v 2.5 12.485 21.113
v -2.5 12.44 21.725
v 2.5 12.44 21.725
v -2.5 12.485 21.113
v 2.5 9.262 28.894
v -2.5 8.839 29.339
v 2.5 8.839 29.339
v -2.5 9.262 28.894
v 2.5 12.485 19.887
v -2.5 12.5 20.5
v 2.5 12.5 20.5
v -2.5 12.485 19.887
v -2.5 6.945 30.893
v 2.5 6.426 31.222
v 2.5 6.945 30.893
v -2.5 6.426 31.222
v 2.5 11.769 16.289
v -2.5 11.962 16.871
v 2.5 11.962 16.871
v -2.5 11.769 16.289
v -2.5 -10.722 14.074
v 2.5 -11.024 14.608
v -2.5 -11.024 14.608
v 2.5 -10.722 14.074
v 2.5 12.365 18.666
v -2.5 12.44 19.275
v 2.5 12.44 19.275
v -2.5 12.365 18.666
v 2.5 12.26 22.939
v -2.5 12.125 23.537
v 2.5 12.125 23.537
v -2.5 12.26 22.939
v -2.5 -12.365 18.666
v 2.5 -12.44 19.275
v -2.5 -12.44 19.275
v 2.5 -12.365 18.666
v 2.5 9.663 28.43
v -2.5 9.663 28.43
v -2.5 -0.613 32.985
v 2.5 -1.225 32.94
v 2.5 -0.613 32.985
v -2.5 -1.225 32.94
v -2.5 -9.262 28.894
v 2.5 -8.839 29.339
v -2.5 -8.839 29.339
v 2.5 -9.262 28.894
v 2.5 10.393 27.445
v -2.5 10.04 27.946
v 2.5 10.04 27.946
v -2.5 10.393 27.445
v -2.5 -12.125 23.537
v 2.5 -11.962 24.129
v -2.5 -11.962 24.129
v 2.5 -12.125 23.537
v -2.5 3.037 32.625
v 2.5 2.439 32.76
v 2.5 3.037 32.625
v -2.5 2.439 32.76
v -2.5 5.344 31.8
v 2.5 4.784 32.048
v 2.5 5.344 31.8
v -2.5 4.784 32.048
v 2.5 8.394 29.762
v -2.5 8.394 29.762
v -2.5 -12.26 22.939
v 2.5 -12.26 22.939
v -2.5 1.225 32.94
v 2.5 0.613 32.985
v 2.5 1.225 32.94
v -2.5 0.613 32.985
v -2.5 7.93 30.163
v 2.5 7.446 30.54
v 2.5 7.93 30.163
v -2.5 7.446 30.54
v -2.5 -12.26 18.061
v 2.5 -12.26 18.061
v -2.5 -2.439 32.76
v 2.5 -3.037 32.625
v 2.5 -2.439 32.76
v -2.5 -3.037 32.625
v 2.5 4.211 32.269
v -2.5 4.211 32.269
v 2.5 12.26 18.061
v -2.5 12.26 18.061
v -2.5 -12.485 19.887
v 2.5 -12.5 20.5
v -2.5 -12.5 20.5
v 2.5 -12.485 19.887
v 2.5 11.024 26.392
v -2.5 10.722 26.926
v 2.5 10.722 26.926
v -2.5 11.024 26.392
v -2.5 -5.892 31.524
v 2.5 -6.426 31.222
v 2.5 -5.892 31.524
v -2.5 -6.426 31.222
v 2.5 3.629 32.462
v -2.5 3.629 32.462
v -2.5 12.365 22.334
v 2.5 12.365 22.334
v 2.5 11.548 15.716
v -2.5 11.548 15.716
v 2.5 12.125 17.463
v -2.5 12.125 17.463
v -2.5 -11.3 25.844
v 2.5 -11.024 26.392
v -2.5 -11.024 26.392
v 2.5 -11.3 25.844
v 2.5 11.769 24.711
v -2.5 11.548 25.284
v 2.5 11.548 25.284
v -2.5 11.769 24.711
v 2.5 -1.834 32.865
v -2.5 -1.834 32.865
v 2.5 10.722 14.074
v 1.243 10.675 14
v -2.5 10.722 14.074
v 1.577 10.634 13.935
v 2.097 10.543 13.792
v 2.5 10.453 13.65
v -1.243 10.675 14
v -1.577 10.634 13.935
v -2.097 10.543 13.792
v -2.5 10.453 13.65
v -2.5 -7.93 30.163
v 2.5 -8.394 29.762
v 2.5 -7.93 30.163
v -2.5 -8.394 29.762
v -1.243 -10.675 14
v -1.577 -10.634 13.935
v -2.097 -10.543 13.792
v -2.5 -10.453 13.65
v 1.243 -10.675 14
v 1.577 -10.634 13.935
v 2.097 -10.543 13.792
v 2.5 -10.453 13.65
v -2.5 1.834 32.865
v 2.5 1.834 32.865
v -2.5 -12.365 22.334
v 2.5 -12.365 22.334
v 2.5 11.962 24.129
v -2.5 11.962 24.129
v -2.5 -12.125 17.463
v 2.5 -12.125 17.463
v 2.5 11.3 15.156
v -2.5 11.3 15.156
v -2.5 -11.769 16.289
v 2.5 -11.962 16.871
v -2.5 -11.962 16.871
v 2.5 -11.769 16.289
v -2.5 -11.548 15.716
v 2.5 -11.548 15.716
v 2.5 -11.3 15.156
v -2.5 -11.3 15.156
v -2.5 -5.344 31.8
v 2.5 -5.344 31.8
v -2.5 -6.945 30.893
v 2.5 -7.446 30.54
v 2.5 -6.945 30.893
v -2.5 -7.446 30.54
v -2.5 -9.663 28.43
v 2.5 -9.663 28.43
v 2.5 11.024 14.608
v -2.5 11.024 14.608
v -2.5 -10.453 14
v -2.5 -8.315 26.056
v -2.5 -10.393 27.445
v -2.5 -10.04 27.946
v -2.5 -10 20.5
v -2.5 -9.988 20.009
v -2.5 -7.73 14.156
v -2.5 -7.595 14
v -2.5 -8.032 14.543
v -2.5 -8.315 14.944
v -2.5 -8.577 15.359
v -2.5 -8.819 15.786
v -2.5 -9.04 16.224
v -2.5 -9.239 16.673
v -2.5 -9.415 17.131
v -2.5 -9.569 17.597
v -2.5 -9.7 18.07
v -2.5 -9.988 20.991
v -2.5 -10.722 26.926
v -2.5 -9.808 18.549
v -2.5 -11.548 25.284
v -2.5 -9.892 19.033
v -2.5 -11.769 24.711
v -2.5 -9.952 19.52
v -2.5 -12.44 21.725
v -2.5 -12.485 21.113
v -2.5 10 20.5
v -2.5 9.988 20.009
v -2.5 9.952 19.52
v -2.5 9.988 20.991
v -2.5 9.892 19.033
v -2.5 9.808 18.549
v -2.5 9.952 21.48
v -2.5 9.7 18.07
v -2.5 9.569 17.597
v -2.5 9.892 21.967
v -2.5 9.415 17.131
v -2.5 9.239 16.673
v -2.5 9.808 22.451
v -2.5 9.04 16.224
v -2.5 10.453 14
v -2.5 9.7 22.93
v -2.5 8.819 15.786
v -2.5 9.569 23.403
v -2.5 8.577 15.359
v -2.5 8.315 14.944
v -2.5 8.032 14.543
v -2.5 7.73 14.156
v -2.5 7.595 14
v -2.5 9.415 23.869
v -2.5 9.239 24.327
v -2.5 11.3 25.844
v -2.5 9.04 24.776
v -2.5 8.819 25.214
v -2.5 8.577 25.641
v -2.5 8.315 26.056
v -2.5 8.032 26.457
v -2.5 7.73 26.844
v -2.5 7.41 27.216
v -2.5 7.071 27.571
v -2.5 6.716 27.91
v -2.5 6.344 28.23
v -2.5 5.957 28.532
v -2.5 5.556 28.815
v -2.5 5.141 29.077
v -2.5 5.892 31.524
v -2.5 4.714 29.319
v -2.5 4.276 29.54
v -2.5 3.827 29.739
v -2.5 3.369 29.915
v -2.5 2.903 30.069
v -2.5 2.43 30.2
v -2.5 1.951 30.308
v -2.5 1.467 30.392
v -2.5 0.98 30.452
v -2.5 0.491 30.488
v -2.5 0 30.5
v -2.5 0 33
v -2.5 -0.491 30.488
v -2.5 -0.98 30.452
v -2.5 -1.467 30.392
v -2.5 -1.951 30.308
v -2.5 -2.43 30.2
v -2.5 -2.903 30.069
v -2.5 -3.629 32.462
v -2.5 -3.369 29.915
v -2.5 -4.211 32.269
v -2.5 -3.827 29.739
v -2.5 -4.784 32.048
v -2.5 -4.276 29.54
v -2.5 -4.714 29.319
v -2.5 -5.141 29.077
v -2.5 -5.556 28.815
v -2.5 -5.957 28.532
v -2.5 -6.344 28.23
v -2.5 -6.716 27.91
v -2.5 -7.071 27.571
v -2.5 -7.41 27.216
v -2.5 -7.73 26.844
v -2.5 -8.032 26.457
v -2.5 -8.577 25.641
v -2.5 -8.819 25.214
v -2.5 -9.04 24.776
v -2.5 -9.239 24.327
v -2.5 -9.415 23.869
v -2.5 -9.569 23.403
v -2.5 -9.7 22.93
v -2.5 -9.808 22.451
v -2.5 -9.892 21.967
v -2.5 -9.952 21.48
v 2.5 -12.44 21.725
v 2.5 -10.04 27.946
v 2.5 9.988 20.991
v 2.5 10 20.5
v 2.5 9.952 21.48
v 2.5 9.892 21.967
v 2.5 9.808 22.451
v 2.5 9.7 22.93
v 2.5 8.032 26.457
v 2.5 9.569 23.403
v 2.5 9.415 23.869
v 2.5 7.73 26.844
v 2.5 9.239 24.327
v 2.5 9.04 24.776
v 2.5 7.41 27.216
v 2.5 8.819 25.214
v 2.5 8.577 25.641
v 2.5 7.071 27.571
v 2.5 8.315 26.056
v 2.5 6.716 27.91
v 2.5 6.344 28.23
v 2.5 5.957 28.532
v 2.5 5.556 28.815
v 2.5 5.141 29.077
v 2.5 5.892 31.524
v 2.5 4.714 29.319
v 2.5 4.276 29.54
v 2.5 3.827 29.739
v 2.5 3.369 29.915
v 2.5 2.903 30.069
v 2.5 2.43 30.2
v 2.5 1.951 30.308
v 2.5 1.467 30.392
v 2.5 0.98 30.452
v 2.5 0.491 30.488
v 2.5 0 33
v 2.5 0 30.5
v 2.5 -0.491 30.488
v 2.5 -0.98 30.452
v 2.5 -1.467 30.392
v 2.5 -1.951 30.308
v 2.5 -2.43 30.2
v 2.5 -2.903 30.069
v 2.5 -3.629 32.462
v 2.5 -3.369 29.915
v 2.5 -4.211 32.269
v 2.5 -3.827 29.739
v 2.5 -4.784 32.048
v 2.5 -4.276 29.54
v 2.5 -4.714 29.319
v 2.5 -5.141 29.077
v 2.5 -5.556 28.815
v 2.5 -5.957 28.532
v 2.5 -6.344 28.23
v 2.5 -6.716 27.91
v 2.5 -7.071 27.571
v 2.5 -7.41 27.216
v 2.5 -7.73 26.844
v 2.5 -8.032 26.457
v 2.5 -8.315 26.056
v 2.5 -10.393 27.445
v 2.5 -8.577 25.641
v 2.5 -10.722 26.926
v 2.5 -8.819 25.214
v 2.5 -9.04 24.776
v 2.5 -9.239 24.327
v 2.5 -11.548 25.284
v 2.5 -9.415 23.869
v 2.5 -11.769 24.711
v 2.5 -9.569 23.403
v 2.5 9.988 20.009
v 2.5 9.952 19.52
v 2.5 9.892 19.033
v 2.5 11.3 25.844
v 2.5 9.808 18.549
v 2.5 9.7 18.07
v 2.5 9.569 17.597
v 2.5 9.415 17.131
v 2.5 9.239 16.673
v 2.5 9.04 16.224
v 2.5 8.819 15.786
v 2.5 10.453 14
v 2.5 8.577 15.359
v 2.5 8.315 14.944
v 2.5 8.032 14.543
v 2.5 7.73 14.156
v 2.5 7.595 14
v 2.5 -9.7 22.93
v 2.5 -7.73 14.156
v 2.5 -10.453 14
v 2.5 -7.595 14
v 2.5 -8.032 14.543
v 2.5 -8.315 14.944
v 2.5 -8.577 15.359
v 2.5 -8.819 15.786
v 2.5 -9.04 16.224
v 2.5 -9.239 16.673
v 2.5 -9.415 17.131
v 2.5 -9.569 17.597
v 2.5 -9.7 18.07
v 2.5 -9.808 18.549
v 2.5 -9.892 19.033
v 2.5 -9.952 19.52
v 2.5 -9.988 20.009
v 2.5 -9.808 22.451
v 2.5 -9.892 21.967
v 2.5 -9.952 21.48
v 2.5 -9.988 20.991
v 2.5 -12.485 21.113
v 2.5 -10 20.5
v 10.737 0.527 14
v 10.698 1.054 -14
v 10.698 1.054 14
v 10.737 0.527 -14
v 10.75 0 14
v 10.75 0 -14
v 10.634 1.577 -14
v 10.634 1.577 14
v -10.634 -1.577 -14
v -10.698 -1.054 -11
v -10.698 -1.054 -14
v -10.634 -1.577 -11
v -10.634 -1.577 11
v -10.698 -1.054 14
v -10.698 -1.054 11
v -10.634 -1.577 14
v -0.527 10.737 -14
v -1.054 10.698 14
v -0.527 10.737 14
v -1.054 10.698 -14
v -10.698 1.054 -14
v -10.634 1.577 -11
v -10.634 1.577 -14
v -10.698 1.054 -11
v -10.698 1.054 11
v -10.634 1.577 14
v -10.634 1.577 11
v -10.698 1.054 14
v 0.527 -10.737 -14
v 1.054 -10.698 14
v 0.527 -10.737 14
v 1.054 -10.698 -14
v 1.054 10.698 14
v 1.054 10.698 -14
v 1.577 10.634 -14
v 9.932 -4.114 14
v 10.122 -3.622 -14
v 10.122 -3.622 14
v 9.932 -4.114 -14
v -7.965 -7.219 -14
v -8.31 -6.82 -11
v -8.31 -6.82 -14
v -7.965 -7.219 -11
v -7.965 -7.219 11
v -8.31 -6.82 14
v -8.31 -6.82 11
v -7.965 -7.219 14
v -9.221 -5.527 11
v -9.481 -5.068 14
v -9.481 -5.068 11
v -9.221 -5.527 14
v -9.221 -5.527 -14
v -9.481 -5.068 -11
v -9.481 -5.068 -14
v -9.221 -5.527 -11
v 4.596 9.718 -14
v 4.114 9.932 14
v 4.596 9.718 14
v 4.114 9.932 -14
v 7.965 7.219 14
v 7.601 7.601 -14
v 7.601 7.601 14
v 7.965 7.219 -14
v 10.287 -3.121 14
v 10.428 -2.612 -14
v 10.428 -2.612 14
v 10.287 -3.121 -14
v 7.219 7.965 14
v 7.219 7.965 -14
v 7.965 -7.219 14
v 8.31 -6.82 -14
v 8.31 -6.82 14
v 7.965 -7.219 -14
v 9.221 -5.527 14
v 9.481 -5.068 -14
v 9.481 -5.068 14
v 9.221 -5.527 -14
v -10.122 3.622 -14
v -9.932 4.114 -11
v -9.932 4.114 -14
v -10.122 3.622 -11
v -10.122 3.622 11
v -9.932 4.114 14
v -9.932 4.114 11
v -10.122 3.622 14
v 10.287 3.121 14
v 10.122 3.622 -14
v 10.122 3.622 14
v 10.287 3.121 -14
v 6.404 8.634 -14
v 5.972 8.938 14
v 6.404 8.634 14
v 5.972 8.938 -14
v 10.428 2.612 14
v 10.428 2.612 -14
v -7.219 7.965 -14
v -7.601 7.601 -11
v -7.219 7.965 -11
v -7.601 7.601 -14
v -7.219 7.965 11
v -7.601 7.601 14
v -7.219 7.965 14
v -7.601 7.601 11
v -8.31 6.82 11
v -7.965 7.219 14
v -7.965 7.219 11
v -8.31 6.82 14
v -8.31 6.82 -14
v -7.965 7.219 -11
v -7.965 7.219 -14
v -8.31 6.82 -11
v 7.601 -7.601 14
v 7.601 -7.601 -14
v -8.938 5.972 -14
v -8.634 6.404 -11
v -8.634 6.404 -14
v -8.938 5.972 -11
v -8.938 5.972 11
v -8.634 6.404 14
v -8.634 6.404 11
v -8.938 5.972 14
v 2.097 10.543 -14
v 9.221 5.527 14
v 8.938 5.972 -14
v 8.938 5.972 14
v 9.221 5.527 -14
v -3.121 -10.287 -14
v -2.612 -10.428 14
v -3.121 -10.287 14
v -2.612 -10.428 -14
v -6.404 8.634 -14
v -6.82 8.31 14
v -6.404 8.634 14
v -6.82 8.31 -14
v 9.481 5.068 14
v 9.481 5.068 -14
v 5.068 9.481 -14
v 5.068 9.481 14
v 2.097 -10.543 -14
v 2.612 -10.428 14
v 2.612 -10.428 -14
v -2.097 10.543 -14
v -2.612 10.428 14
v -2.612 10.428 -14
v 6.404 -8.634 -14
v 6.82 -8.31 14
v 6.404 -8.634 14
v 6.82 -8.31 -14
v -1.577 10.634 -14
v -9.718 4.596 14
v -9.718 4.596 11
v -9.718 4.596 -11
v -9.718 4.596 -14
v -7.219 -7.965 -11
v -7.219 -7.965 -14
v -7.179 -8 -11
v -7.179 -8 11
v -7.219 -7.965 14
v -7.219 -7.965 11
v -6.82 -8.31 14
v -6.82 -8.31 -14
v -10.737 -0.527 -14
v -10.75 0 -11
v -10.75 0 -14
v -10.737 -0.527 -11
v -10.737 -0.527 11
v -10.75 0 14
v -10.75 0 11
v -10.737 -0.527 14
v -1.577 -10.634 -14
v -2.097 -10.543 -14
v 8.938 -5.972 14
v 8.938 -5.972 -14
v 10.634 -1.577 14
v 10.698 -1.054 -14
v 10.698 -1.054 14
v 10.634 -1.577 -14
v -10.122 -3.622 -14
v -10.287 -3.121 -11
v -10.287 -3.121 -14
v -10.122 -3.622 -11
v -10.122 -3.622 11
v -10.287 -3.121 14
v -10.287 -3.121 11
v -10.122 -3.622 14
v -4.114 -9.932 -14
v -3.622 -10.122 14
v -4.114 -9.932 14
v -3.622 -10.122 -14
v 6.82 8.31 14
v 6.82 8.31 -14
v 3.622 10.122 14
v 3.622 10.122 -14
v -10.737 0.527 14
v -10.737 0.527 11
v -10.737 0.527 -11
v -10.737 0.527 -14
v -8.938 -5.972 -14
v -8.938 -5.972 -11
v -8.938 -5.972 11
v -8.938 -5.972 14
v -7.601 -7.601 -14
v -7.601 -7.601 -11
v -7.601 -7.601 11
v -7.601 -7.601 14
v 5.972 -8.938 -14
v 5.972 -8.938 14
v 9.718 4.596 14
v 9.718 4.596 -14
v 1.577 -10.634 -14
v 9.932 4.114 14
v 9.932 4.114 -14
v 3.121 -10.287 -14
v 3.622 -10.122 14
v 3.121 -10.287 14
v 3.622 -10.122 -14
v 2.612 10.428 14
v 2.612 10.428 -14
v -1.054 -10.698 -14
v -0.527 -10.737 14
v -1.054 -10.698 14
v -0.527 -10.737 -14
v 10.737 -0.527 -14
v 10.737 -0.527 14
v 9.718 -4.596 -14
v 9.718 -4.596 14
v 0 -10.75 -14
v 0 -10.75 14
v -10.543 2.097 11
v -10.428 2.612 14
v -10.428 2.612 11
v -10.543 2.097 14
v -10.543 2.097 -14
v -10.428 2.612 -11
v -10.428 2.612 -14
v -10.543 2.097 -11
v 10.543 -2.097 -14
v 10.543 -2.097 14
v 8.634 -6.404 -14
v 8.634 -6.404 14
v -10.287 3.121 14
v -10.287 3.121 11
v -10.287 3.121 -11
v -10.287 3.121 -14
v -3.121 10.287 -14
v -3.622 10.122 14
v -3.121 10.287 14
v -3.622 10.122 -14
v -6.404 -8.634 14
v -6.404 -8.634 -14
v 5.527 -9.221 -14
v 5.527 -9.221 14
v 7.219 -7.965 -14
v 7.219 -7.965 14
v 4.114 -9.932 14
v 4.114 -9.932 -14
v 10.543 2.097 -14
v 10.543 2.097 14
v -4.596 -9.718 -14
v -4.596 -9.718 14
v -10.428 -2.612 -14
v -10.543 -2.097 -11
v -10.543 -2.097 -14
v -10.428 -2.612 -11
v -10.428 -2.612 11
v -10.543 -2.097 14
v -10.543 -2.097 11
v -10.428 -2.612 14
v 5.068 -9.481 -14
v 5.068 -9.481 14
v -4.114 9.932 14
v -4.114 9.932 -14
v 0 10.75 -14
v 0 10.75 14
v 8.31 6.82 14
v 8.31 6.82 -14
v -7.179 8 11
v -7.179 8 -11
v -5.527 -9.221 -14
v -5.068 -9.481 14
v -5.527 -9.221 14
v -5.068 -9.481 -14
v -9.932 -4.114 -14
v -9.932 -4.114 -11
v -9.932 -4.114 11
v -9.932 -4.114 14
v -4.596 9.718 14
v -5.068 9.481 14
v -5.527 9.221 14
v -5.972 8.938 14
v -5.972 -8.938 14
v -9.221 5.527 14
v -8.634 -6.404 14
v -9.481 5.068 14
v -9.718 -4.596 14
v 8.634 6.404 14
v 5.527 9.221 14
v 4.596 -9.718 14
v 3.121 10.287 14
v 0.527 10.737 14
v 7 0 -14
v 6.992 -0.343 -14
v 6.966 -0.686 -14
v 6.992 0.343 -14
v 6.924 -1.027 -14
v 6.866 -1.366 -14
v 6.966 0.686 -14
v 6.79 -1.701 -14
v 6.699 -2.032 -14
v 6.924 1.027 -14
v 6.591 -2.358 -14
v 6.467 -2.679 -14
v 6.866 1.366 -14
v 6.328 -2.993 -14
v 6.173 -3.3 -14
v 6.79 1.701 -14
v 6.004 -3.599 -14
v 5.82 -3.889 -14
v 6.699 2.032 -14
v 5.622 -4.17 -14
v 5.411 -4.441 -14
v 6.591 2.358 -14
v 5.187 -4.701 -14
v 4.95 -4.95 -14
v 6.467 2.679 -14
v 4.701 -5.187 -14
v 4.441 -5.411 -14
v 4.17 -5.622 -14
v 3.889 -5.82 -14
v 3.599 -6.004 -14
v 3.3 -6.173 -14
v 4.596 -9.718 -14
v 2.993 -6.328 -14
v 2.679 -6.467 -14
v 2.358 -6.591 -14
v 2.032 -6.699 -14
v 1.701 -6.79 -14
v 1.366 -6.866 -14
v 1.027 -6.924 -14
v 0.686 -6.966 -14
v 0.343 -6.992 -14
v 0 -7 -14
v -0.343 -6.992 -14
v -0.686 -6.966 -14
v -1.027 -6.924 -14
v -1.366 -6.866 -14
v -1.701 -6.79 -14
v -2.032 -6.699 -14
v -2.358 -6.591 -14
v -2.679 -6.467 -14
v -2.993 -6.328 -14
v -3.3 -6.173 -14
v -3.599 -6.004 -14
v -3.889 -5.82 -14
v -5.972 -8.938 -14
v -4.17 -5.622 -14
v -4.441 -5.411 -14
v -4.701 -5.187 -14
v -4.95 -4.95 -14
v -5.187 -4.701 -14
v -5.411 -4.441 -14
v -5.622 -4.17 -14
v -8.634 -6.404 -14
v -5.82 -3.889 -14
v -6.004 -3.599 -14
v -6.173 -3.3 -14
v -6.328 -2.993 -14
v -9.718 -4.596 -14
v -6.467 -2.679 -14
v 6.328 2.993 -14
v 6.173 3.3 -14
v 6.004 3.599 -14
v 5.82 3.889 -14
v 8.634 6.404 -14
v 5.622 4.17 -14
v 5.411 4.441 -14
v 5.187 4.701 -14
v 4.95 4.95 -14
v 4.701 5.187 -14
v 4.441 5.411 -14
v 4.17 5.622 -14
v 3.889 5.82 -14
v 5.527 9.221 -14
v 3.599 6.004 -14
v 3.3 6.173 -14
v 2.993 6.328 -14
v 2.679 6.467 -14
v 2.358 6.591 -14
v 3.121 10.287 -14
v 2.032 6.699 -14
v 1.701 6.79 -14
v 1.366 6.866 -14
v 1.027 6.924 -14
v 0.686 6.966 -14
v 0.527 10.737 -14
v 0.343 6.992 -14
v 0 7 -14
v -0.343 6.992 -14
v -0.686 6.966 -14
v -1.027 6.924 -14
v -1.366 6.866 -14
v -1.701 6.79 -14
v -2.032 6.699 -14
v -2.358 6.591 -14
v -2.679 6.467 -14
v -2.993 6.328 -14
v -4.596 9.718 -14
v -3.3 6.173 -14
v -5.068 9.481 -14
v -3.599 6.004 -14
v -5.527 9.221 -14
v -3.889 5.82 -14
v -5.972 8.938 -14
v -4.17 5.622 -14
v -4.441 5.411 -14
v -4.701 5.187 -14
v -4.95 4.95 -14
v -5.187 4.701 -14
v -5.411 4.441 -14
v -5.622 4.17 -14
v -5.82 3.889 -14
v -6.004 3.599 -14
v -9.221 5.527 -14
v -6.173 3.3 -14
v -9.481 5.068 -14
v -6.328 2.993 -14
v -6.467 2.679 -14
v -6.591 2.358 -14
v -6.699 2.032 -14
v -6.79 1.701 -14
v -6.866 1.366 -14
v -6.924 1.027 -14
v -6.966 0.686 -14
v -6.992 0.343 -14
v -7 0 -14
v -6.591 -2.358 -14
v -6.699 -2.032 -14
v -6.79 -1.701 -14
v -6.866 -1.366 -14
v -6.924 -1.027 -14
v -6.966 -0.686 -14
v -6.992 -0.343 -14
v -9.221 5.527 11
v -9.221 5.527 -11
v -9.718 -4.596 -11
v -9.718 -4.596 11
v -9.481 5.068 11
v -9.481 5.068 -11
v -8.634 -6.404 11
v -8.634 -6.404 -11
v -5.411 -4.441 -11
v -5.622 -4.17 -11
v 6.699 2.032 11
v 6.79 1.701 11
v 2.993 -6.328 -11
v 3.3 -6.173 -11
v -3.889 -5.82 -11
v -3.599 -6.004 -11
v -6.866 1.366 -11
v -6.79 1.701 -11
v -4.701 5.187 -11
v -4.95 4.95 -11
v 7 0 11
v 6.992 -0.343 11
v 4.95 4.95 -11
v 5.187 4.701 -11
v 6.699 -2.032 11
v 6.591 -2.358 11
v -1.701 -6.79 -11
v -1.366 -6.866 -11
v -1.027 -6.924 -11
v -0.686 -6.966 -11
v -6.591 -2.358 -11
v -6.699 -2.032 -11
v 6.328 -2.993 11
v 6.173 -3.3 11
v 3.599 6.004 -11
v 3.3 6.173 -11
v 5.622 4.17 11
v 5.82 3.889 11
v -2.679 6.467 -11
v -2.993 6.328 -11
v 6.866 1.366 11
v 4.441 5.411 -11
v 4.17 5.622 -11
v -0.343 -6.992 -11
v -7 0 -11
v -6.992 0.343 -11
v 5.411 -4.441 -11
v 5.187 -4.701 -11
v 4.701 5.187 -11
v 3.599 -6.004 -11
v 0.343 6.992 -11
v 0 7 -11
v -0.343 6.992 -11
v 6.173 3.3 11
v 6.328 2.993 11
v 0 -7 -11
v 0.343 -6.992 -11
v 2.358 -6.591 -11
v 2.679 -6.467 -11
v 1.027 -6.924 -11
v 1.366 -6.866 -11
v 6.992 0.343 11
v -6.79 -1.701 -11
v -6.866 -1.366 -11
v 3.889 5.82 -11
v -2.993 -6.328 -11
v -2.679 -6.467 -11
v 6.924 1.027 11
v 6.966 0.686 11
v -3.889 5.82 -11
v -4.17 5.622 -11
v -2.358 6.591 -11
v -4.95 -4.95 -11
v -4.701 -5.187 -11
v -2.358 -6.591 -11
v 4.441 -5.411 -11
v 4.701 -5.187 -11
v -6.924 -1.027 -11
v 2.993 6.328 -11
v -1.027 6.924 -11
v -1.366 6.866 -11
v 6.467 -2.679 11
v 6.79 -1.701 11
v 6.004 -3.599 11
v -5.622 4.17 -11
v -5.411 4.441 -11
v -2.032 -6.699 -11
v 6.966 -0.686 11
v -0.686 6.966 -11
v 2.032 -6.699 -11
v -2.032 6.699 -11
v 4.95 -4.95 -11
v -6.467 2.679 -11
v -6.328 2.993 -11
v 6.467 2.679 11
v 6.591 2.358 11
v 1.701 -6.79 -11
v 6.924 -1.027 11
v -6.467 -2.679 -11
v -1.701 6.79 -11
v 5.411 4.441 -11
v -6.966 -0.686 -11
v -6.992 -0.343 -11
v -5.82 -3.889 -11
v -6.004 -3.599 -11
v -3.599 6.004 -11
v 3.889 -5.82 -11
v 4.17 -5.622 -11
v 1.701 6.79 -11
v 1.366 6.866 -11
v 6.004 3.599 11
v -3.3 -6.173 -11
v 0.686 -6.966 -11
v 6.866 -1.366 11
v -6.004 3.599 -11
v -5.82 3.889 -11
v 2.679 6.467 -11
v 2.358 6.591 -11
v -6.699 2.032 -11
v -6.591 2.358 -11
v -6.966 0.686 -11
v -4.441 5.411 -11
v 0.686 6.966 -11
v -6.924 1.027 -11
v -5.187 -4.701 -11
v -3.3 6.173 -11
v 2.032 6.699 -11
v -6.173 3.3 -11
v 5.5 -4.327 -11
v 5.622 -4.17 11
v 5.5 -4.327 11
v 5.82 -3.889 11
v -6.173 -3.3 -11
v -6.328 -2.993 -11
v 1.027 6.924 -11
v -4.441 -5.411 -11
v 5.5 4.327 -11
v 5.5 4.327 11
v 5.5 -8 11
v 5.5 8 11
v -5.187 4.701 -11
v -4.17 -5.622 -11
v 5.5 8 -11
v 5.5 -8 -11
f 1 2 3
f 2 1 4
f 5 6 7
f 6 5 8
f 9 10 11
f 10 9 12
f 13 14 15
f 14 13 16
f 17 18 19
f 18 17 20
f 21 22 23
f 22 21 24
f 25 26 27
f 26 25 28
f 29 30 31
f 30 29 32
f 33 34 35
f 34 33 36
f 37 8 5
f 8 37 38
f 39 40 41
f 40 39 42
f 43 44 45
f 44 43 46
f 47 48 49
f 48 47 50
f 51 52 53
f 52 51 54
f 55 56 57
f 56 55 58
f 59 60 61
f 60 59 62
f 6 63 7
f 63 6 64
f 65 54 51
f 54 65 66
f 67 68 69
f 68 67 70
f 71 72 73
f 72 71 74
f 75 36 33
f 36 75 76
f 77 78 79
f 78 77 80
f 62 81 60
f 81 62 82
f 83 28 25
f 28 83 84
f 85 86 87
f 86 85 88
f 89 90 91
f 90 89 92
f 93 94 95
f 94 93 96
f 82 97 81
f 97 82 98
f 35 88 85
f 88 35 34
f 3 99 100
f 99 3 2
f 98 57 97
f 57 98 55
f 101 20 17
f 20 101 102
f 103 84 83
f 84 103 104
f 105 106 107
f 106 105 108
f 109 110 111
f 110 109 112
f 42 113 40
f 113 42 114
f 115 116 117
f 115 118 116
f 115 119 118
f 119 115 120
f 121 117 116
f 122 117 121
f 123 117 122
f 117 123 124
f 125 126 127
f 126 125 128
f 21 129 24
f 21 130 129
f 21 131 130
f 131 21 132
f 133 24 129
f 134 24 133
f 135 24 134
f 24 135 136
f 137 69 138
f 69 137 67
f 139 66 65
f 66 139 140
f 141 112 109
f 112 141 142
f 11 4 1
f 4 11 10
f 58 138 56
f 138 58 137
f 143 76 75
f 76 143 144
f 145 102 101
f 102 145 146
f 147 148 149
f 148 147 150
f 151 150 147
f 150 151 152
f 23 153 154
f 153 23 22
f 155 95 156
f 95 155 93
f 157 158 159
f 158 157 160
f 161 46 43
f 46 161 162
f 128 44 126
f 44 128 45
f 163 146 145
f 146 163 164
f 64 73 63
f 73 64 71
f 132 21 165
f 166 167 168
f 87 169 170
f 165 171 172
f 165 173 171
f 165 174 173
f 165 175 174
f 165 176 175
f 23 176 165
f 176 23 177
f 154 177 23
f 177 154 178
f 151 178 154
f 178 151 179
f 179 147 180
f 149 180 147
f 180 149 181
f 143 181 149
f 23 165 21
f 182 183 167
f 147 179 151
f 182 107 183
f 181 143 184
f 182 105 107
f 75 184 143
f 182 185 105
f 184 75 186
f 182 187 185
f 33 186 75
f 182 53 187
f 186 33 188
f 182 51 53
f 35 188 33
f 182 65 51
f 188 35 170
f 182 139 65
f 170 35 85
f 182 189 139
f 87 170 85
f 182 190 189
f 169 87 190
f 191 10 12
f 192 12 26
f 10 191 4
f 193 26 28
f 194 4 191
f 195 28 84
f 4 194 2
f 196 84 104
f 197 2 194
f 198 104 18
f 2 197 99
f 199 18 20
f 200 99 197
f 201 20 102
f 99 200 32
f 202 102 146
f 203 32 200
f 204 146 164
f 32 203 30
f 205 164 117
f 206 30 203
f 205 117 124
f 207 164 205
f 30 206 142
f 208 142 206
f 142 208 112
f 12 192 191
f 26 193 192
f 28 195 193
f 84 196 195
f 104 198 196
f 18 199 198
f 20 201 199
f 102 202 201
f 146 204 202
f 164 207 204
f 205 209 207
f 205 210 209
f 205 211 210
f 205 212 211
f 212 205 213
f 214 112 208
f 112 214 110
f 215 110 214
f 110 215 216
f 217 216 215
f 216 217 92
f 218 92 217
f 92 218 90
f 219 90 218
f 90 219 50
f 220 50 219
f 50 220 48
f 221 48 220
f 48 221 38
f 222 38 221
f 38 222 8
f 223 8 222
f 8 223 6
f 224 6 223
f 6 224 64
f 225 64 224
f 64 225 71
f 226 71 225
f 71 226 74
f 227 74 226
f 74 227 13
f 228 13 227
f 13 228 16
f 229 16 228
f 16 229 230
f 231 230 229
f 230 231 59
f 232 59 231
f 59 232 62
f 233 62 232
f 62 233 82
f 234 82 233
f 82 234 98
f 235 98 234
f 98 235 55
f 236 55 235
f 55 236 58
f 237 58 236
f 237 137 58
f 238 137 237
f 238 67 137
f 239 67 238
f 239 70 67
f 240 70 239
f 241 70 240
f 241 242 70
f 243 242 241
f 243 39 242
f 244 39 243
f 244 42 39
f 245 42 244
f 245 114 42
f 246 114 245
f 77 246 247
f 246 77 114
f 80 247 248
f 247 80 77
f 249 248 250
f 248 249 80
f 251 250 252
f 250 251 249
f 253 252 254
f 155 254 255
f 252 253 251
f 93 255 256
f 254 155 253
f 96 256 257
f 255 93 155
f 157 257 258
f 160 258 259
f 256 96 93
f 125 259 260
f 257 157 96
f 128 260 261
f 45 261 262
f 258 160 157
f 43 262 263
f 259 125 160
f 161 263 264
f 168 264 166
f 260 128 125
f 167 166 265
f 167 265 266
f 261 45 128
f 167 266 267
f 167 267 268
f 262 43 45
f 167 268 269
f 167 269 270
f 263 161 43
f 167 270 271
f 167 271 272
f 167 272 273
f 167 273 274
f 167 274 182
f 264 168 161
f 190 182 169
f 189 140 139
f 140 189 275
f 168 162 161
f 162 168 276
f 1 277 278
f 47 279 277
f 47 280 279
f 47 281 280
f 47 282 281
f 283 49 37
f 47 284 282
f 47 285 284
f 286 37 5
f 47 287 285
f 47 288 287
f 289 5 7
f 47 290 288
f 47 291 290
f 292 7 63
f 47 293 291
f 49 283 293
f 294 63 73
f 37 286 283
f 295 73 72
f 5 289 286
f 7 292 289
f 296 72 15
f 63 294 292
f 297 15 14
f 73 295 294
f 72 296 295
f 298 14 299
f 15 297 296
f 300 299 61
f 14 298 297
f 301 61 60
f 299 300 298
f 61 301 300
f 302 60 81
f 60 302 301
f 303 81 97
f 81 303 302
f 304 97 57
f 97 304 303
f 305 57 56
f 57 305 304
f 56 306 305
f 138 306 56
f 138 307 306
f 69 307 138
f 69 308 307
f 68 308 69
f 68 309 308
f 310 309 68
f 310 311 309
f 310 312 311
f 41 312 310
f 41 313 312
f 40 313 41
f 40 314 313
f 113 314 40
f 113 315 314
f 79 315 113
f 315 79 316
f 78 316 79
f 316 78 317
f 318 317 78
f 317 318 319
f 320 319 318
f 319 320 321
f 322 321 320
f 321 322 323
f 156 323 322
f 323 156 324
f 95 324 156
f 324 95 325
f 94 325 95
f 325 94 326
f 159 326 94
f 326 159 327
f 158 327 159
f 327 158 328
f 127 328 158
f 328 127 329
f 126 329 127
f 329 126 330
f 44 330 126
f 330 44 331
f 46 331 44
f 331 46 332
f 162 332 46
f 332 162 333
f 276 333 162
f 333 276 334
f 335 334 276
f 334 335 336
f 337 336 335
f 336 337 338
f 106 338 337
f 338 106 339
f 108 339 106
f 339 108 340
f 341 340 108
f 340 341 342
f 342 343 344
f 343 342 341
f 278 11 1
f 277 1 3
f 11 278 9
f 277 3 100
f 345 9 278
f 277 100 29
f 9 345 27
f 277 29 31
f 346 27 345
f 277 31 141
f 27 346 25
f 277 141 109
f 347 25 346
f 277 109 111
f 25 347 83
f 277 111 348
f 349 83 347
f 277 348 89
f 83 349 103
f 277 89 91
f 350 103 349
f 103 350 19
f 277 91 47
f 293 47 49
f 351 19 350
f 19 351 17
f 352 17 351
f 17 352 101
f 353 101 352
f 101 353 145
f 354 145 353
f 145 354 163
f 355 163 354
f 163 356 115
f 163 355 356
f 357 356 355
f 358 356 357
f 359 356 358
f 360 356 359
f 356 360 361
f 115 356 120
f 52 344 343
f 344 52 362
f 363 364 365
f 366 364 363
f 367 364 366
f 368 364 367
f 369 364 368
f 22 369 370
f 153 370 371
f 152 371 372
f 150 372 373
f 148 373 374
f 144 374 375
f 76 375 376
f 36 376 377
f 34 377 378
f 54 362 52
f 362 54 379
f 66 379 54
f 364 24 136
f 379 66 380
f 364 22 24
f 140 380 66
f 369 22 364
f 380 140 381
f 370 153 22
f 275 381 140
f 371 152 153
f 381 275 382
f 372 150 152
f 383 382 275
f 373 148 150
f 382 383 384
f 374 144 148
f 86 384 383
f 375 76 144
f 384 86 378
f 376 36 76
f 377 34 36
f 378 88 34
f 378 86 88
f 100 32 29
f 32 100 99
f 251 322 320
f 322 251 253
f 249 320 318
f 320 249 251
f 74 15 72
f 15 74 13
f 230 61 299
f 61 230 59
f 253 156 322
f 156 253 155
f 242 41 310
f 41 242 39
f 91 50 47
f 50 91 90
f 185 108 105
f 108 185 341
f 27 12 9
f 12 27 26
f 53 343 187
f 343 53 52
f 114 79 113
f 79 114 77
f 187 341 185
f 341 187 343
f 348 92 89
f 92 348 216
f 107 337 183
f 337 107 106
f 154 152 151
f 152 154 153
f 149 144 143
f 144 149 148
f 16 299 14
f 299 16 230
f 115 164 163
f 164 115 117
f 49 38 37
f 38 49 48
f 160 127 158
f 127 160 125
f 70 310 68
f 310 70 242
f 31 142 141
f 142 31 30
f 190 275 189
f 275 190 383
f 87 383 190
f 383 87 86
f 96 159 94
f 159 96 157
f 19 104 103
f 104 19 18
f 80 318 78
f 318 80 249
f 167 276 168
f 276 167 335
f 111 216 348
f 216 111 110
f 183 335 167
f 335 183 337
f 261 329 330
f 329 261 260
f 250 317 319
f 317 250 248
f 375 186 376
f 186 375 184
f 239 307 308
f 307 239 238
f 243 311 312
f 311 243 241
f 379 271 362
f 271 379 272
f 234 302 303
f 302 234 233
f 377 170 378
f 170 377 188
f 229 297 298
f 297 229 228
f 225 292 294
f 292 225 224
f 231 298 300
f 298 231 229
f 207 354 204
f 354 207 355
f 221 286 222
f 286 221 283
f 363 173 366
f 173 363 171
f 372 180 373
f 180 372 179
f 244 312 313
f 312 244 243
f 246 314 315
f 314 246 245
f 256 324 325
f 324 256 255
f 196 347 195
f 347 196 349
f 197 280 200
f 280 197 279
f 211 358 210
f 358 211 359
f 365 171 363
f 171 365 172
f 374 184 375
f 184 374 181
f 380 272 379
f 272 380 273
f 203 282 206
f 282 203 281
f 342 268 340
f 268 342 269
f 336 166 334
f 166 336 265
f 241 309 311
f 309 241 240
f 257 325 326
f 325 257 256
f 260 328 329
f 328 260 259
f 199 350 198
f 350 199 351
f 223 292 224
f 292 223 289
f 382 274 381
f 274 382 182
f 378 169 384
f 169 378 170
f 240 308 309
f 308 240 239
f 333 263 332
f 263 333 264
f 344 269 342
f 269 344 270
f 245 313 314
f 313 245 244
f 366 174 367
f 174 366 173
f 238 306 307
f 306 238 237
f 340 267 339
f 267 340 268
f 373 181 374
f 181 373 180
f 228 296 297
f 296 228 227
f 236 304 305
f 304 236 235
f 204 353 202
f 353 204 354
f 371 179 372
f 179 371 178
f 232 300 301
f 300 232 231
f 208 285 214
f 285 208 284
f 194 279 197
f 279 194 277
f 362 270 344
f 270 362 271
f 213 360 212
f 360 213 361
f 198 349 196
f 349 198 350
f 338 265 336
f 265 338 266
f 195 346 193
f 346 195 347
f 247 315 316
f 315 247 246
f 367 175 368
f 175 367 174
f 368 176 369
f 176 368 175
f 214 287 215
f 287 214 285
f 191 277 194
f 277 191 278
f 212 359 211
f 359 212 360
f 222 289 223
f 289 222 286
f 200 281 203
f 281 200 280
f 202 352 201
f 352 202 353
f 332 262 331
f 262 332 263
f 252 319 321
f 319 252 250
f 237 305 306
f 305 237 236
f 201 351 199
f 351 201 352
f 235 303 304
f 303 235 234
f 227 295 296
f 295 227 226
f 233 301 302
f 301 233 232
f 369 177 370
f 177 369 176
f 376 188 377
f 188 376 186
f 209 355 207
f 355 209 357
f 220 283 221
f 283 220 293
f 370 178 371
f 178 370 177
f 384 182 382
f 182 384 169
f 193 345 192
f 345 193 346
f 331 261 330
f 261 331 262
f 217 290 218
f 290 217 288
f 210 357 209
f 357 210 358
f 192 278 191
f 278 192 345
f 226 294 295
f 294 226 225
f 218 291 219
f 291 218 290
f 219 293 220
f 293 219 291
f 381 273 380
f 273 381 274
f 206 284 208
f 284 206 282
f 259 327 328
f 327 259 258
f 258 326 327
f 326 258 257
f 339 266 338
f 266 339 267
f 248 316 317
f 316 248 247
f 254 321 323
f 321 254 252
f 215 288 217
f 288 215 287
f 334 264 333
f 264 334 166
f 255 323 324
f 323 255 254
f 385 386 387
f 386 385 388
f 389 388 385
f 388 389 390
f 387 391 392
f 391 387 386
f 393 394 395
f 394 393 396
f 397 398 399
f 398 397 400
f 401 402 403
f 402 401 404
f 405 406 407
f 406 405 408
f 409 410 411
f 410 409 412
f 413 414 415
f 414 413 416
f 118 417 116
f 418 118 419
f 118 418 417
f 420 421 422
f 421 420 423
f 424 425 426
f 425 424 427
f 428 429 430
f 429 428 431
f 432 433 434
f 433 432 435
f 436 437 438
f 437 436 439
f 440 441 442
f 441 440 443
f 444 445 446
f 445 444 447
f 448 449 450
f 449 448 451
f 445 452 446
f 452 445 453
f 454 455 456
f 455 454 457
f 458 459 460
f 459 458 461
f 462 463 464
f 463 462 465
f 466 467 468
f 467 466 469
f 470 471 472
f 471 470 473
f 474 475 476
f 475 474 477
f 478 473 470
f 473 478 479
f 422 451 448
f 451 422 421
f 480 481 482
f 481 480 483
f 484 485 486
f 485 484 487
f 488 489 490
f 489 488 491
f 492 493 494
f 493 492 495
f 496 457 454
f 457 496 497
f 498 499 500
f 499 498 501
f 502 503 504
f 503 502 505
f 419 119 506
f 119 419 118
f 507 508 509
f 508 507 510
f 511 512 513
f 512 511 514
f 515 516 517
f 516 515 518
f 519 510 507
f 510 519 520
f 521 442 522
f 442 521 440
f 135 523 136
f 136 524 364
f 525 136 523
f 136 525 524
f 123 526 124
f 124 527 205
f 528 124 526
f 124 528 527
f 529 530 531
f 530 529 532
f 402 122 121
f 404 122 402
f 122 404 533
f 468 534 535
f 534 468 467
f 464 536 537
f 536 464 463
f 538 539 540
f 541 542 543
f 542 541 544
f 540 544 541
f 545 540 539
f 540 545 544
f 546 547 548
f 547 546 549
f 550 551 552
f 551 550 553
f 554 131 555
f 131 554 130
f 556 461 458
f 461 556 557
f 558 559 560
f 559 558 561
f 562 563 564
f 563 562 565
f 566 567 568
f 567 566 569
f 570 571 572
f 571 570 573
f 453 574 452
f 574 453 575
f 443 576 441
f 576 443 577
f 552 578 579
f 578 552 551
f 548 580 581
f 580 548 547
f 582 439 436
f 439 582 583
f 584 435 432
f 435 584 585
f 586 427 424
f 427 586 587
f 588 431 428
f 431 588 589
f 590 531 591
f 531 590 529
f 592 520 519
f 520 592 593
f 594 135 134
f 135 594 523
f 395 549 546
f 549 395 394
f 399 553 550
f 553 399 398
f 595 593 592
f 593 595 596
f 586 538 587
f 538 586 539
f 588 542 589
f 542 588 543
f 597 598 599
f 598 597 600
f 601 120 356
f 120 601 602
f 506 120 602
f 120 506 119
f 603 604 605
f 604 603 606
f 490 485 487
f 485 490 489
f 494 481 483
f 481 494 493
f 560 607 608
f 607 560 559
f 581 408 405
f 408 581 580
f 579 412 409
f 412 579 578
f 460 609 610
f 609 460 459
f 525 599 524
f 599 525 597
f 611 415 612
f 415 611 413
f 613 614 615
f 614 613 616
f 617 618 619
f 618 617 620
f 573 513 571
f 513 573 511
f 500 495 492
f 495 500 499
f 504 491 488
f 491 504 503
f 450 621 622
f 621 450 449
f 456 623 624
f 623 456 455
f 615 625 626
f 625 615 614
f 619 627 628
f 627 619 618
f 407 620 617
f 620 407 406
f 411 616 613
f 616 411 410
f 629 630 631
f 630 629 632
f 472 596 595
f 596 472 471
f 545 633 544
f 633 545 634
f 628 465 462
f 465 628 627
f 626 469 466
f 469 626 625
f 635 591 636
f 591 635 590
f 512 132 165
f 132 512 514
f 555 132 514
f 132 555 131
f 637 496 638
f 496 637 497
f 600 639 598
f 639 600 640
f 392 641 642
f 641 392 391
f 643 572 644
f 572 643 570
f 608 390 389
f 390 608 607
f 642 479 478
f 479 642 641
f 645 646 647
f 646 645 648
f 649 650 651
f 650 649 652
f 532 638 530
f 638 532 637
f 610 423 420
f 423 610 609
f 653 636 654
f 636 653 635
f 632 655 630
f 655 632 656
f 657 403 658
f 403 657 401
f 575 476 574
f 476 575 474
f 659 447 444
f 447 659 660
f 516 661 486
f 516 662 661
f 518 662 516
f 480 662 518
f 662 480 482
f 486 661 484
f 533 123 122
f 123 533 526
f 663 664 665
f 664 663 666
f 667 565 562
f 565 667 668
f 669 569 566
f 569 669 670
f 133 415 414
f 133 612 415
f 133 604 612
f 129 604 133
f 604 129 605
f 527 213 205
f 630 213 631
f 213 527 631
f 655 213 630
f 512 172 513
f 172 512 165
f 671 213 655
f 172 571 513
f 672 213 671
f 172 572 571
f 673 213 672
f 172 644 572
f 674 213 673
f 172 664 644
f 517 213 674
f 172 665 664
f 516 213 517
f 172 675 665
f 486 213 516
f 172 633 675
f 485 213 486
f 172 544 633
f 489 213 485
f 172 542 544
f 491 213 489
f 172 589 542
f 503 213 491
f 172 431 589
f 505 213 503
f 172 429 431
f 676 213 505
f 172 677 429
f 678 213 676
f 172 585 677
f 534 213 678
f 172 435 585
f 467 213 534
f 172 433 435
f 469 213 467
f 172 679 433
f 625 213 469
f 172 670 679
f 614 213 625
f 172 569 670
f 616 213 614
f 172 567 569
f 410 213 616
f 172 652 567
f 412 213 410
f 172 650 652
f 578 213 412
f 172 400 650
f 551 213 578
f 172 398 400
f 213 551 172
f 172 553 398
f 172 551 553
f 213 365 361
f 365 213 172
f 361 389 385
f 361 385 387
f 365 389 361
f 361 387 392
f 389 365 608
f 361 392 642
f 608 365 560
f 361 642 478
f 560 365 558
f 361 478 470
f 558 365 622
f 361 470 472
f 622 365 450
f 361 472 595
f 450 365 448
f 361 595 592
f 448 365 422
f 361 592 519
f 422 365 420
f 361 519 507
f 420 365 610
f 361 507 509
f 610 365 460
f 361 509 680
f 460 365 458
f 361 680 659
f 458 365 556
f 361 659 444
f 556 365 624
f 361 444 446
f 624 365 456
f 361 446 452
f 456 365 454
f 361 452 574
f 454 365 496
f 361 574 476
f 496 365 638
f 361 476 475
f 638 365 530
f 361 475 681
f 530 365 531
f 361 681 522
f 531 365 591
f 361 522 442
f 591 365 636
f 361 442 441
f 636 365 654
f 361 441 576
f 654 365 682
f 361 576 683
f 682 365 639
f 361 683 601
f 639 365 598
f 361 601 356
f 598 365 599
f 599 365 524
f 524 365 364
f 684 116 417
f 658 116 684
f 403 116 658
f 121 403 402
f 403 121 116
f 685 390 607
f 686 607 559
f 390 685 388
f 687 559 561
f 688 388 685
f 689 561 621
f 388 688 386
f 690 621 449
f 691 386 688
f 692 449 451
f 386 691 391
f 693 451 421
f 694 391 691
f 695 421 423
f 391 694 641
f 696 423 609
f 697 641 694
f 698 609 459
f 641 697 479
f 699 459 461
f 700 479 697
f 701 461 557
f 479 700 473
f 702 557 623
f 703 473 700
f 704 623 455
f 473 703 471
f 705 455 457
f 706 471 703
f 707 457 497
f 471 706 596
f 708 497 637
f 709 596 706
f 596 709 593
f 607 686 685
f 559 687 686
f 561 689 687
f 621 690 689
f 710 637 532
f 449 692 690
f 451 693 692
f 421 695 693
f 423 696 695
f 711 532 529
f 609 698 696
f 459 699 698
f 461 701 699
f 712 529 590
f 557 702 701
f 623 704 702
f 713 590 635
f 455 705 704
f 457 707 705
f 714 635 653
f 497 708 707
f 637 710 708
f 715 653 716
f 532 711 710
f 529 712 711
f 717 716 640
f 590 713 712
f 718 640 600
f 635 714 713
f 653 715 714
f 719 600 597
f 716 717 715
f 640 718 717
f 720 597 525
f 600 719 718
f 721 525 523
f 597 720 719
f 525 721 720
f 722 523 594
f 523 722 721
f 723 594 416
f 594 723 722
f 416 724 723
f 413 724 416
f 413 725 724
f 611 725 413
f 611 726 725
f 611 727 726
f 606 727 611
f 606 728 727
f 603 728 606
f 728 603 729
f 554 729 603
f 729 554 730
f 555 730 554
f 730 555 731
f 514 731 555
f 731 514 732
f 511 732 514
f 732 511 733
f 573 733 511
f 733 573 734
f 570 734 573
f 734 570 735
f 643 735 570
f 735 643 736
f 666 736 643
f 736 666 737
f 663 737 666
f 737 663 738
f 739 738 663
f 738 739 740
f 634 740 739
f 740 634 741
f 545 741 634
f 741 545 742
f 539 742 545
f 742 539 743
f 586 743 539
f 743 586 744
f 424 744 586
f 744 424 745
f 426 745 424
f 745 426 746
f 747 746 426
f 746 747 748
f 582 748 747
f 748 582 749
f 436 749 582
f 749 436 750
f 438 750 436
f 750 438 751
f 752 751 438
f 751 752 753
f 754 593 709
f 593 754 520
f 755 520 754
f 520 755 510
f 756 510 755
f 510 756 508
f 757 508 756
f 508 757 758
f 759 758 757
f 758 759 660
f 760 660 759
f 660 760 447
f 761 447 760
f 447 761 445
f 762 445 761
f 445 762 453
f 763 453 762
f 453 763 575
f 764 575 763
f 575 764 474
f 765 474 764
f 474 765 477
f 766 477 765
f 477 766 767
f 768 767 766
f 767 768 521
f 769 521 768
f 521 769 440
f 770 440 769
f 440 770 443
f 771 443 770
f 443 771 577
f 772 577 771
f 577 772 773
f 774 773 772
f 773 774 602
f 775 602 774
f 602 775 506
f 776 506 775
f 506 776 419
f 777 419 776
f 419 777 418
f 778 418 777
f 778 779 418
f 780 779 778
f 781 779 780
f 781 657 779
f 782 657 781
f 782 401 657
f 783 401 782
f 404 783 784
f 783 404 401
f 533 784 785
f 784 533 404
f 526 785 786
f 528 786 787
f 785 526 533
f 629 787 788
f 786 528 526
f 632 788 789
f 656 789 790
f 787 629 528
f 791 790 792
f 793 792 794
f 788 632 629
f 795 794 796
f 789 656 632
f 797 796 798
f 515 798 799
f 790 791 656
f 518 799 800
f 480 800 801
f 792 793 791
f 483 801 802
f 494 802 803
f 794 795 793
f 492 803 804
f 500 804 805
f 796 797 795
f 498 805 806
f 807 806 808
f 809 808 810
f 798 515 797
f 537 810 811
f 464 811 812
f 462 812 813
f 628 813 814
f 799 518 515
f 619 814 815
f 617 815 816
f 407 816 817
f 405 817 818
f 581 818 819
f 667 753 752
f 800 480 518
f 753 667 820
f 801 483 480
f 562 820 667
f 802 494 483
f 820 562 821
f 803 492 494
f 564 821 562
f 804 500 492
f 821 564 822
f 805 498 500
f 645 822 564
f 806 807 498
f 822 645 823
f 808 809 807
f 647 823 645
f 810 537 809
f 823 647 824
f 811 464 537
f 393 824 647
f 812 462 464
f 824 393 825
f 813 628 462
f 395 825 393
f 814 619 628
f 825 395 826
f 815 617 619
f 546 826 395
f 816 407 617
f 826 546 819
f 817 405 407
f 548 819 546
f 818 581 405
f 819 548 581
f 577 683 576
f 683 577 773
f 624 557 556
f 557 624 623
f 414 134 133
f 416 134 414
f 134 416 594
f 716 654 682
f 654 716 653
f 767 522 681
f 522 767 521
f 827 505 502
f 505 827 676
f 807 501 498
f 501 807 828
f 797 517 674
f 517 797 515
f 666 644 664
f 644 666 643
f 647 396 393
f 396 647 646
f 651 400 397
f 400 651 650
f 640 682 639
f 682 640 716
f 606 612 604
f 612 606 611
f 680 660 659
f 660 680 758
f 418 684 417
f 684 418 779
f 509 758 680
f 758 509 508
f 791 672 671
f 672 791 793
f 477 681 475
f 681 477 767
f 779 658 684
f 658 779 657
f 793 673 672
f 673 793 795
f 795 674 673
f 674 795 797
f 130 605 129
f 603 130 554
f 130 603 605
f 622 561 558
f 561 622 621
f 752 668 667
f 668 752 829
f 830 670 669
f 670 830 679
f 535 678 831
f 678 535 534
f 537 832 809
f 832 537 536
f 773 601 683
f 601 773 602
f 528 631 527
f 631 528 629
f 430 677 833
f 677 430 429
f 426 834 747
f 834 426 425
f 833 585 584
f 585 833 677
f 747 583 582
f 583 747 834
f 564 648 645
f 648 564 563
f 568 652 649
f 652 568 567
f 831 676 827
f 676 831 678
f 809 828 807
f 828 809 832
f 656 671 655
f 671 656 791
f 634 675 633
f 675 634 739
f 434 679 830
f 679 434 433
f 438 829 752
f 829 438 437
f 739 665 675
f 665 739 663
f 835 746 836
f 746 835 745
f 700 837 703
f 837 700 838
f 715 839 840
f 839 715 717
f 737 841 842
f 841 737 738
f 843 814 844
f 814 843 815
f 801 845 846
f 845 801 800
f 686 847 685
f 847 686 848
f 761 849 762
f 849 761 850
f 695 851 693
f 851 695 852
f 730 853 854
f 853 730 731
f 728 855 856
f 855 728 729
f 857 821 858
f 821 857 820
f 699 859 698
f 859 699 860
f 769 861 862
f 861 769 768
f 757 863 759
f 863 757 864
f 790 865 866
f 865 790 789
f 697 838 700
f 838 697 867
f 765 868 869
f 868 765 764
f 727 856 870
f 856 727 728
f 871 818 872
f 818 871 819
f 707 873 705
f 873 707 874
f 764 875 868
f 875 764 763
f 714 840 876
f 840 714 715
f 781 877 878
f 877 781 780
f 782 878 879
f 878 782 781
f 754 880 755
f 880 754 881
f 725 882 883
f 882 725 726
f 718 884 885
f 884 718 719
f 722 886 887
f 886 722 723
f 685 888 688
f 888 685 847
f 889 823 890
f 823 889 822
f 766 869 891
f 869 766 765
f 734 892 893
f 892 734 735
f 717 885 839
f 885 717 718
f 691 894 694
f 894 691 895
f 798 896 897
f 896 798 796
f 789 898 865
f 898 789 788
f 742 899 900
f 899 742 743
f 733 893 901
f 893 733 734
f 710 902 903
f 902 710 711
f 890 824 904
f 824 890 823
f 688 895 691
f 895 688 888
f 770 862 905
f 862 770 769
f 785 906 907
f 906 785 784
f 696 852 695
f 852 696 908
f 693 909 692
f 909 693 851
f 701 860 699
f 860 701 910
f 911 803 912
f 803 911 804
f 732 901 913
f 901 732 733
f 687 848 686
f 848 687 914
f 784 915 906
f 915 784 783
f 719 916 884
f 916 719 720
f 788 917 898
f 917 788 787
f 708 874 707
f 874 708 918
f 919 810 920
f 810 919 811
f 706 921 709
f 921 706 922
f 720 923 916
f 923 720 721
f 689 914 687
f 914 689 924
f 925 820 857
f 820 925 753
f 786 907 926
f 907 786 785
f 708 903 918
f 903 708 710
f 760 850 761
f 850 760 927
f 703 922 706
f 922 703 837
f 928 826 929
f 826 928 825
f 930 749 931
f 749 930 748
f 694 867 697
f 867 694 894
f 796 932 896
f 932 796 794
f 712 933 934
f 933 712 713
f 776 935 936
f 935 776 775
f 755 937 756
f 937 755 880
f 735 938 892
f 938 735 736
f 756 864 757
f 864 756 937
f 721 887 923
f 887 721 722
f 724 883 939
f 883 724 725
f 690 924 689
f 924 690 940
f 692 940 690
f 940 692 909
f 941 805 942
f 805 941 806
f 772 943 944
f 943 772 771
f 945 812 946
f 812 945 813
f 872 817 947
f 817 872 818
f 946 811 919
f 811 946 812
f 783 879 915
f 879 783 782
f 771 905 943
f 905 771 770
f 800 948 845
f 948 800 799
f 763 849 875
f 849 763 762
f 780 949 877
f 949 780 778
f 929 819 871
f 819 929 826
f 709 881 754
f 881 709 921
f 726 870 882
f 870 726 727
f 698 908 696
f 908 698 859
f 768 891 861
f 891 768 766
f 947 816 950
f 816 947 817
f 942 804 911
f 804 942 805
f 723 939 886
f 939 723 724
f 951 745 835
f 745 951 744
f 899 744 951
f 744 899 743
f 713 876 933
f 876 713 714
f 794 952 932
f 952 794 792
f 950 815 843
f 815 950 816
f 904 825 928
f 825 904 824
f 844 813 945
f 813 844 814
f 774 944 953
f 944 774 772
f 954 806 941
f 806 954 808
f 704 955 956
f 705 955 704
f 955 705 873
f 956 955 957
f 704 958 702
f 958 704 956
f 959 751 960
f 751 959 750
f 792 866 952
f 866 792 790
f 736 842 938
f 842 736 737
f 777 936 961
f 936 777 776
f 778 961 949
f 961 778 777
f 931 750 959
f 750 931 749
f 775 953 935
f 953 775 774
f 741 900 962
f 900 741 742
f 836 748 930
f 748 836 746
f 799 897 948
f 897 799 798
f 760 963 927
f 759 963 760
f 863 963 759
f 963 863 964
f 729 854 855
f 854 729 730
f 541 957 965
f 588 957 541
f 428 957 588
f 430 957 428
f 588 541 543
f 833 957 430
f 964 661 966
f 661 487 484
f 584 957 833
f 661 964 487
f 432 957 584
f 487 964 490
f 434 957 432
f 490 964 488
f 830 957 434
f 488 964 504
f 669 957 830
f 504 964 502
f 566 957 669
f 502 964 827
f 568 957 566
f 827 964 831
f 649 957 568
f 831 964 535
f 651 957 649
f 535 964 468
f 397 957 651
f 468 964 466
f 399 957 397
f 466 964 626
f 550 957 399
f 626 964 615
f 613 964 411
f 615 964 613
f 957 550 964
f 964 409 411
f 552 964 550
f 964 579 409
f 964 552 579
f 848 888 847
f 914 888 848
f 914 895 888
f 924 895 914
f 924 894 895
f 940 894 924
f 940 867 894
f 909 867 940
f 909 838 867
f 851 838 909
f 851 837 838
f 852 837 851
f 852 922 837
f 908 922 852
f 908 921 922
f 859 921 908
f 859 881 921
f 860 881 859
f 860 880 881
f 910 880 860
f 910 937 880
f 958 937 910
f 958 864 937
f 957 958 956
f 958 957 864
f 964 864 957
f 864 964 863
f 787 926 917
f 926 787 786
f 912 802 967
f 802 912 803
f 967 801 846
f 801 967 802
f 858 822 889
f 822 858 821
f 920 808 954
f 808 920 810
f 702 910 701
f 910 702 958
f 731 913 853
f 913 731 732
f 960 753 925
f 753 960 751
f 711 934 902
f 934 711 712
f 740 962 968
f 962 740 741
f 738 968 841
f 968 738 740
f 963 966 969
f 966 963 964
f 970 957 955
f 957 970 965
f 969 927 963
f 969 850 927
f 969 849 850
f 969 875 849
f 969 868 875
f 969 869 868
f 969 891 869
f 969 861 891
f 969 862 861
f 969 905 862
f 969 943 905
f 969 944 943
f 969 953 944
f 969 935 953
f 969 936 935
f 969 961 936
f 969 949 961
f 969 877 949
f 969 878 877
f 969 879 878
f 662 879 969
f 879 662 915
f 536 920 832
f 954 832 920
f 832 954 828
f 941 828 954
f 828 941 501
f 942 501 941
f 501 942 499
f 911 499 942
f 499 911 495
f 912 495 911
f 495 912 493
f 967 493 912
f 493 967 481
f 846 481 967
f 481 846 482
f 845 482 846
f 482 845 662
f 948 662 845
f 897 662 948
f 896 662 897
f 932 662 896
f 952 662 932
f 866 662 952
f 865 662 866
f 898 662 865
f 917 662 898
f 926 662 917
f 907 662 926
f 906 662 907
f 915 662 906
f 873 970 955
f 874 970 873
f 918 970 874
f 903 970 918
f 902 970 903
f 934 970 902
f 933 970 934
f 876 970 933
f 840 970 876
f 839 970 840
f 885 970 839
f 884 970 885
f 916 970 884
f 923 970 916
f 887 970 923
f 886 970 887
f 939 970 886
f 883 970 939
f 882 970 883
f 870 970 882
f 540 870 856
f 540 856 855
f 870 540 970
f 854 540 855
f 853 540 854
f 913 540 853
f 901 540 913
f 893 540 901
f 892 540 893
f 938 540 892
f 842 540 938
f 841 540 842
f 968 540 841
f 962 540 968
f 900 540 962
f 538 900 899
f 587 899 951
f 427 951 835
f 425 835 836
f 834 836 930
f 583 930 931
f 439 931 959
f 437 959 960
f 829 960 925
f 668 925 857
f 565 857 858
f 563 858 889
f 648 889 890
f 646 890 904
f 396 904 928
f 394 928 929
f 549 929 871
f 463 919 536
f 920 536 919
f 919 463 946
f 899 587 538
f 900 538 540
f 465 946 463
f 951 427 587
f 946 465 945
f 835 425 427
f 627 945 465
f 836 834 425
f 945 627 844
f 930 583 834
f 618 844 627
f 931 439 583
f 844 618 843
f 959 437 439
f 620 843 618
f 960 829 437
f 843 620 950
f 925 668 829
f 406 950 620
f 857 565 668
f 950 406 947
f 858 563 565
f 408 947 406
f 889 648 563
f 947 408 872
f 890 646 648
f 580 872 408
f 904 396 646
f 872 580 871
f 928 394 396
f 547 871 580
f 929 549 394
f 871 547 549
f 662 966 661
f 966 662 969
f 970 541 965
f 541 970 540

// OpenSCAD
SQUARE_WIDTH=16;
DIAM=21.5;
INNER_DIAM=14;
DEPTH=22;
BUFFER=3;
RING_DIAM=25;
RING_WIDTH=5;

/*
union() {
    translate([0, 0, -1 * (BUFFER + (0.5 * DEPTH))]) rotate([180, 0, 0]) difference() {        
        difference() {
            difference() {
                cylinder(d=DIAM, h=DEPTH + (2*BUFFER), $fn=128, center=true);
                cube([SQUARE_WIDTH, 2 * SQUARE_WIDTH, DEPTH], center=true);
            }
            cylinder(d=(0.55*DIAM), h=DEPTH + BUFFER, $fn=128);
        }
        union() {
            translate([0, SQUARE_WIDTH - 1, 0]) cube([SQUARE_WIDTH, SQUARE_WIDTH, DEPTH + (BUFFER*2)], center=true);
            translate([0, (-1 * SQUARE_WIDTH) + 1, 0]) cube([SQUARE_WIDTH, SQUARE_WIDTH, DEPTH + (BUFFER*2)], center=true);
        }
    }
    
    translate([0, 0, 5]) rotate([90, 0, 0]) difference() {
        cylinder(d=16, h=5, center=true, $fn=128);
        cylinder(d=12, h=5, center=true, $fn=128);
    }
    
}
*/

difference() {
    difference(){
        union() {
            cylinder(d=DIAM, h=DEPTH + (2*BUFFER), $fn=128, center=true);
            translate([0,0,(0.5 * (RING_WIDTH + DEPTH)) + 7]) rotate([0, 90, 0]) {
                difference() {
                    cylinder(d=RING_DIAM, h=RING_WIDTH, $fn=128, center=true);
                    cylinder(d=RING_DIAM-5, h=RING_WIDTH, $fn=128, center=true);
                }
            }
        }
        translate([0,0,-0.5*BUFFER]) cylinder(d=INNER_DIAM, h=DEPTH+BUFFER, $fn=128, center=true);
    }
    translate([-5, 0, 0]) cube([SQUARE_WIDTH + 5, SQUARE_WIDTH, DEPTH], center=true);
}
